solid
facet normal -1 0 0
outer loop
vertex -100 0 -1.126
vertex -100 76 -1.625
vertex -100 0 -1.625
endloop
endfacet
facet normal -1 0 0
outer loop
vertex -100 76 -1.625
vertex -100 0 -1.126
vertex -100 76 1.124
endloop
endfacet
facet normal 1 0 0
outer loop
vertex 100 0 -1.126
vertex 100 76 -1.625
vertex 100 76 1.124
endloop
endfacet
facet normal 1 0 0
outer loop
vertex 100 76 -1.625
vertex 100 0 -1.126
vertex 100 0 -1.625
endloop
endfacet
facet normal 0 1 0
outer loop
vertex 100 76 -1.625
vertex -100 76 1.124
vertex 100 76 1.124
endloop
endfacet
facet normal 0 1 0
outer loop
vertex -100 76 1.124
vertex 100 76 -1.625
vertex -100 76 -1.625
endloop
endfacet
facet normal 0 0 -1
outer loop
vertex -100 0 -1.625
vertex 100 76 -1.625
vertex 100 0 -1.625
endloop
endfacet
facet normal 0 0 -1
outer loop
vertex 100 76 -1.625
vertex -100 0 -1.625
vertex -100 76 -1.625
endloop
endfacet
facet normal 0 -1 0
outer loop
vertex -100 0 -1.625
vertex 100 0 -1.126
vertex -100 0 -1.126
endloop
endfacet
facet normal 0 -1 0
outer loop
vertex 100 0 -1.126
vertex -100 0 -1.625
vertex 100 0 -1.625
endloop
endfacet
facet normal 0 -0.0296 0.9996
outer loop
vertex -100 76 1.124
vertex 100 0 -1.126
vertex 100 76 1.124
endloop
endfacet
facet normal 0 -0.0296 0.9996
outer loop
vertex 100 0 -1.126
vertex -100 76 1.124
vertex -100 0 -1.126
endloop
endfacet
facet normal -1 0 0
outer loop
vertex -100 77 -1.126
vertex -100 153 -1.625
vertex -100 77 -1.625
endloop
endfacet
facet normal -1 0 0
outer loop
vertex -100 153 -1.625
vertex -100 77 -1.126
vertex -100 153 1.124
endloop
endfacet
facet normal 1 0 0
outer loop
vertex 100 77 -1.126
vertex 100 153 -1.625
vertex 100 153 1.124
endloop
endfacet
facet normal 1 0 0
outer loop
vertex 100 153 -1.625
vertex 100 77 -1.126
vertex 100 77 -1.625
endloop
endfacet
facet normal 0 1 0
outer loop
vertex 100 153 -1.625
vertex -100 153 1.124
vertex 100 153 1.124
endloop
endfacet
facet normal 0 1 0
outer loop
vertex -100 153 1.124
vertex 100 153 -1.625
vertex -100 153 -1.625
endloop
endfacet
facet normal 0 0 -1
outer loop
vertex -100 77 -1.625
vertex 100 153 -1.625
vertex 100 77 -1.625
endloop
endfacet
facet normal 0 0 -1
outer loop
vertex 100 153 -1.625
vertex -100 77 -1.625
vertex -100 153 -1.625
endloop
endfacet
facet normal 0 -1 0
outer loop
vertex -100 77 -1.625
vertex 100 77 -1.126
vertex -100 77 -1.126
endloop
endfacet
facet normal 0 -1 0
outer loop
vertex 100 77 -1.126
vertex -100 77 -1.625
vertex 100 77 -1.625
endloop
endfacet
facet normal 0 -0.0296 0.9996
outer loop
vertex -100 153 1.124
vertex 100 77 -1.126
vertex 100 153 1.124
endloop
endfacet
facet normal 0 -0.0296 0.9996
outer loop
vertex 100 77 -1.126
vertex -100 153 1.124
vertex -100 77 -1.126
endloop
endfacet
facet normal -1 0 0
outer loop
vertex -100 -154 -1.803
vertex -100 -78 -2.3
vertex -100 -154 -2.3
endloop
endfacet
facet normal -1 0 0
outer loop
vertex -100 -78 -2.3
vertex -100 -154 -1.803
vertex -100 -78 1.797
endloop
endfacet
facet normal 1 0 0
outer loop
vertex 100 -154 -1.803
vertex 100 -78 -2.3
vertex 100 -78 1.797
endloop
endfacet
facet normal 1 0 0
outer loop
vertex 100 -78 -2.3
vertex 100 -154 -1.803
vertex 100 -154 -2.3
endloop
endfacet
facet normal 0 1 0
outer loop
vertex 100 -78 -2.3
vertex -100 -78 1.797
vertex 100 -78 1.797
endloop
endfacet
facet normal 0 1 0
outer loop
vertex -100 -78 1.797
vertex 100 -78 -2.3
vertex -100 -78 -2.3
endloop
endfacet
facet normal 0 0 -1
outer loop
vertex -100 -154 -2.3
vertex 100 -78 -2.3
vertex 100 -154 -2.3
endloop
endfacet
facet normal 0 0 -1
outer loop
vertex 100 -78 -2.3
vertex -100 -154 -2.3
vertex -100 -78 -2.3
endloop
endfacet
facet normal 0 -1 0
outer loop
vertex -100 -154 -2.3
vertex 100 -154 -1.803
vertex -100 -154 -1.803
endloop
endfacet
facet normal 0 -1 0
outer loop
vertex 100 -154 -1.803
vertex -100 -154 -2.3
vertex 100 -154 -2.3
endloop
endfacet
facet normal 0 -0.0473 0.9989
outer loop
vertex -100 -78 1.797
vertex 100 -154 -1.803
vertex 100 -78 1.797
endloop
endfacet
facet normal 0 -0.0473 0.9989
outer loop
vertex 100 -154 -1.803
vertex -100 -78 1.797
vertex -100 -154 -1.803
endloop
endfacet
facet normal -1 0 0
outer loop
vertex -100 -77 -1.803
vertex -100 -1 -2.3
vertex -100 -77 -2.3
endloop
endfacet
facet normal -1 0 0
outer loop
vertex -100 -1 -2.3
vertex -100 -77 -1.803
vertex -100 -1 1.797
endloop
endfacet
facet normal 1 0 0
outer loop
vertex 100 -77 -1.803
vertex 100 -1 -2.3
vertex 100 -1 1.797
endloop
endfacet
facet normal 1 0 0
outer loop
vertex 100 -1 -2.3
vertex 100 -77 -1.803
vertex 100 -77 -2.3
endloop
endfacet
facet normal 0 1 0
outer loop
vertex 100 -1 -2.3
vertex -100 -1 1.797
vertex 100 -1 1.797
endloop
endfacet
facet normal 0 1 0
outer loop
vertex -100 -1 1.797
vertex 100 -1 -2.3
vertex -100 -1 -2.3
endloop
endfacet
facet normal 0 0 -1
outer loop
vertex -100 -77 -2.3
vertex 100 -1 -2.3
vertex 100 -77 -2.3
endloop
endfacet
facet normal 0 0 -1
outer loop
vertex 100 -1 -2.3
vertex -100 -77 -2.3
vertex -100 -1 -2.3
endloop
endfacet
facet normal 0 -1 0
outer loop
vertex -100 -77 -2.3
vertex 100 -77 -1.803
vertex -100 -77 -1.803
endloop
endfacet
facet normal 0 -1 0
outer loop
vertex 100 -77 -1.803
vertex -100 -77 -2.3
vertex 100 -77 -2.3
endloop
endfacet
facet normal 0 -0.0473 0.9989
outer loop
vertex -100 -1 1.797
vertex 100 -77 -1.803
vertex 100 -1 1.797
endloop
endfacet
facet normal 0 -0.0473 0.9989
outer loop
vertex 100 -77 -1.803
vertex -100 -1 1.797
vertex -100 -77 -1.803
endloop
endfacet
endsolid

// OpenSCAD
t1 = 2.25;
t2 = 3.6;

width=76;
length=200;
gap=1;

module wedge(left_thickness, right_thickness, width=76.0, length=300.0){
	diff_thick = right_thickness - left_thickness;
	echo(diff_thick);
	degrees = atan(diff_thick / width);
	echo(degrees);
	difference(){
		cube([length,width,right_thickness], center=true);
		translate([0,0,0.5 * right_thickness]) rotate([degrees,0,0]) {cube([length * 1.1,width * 1.4,right_thickness], center=true);}
	}	
}

union(){
	translate([0,(width  / 2),0]) {
		union(){
			wedge(1, 1 + t1, width, length);
			translate([0,width + gap,0]) {wedge(1, 1 + t1, width, length);};
		}
	}
	translate([0,-((width * 1.5) + (2 * gap)),0]) {
		union(){
			wedge(1, 1 + t2, width, length);
			translate([0,width + gap,0]) {wedge(1, 1 + t2, width, length);};
		}
	}
}
